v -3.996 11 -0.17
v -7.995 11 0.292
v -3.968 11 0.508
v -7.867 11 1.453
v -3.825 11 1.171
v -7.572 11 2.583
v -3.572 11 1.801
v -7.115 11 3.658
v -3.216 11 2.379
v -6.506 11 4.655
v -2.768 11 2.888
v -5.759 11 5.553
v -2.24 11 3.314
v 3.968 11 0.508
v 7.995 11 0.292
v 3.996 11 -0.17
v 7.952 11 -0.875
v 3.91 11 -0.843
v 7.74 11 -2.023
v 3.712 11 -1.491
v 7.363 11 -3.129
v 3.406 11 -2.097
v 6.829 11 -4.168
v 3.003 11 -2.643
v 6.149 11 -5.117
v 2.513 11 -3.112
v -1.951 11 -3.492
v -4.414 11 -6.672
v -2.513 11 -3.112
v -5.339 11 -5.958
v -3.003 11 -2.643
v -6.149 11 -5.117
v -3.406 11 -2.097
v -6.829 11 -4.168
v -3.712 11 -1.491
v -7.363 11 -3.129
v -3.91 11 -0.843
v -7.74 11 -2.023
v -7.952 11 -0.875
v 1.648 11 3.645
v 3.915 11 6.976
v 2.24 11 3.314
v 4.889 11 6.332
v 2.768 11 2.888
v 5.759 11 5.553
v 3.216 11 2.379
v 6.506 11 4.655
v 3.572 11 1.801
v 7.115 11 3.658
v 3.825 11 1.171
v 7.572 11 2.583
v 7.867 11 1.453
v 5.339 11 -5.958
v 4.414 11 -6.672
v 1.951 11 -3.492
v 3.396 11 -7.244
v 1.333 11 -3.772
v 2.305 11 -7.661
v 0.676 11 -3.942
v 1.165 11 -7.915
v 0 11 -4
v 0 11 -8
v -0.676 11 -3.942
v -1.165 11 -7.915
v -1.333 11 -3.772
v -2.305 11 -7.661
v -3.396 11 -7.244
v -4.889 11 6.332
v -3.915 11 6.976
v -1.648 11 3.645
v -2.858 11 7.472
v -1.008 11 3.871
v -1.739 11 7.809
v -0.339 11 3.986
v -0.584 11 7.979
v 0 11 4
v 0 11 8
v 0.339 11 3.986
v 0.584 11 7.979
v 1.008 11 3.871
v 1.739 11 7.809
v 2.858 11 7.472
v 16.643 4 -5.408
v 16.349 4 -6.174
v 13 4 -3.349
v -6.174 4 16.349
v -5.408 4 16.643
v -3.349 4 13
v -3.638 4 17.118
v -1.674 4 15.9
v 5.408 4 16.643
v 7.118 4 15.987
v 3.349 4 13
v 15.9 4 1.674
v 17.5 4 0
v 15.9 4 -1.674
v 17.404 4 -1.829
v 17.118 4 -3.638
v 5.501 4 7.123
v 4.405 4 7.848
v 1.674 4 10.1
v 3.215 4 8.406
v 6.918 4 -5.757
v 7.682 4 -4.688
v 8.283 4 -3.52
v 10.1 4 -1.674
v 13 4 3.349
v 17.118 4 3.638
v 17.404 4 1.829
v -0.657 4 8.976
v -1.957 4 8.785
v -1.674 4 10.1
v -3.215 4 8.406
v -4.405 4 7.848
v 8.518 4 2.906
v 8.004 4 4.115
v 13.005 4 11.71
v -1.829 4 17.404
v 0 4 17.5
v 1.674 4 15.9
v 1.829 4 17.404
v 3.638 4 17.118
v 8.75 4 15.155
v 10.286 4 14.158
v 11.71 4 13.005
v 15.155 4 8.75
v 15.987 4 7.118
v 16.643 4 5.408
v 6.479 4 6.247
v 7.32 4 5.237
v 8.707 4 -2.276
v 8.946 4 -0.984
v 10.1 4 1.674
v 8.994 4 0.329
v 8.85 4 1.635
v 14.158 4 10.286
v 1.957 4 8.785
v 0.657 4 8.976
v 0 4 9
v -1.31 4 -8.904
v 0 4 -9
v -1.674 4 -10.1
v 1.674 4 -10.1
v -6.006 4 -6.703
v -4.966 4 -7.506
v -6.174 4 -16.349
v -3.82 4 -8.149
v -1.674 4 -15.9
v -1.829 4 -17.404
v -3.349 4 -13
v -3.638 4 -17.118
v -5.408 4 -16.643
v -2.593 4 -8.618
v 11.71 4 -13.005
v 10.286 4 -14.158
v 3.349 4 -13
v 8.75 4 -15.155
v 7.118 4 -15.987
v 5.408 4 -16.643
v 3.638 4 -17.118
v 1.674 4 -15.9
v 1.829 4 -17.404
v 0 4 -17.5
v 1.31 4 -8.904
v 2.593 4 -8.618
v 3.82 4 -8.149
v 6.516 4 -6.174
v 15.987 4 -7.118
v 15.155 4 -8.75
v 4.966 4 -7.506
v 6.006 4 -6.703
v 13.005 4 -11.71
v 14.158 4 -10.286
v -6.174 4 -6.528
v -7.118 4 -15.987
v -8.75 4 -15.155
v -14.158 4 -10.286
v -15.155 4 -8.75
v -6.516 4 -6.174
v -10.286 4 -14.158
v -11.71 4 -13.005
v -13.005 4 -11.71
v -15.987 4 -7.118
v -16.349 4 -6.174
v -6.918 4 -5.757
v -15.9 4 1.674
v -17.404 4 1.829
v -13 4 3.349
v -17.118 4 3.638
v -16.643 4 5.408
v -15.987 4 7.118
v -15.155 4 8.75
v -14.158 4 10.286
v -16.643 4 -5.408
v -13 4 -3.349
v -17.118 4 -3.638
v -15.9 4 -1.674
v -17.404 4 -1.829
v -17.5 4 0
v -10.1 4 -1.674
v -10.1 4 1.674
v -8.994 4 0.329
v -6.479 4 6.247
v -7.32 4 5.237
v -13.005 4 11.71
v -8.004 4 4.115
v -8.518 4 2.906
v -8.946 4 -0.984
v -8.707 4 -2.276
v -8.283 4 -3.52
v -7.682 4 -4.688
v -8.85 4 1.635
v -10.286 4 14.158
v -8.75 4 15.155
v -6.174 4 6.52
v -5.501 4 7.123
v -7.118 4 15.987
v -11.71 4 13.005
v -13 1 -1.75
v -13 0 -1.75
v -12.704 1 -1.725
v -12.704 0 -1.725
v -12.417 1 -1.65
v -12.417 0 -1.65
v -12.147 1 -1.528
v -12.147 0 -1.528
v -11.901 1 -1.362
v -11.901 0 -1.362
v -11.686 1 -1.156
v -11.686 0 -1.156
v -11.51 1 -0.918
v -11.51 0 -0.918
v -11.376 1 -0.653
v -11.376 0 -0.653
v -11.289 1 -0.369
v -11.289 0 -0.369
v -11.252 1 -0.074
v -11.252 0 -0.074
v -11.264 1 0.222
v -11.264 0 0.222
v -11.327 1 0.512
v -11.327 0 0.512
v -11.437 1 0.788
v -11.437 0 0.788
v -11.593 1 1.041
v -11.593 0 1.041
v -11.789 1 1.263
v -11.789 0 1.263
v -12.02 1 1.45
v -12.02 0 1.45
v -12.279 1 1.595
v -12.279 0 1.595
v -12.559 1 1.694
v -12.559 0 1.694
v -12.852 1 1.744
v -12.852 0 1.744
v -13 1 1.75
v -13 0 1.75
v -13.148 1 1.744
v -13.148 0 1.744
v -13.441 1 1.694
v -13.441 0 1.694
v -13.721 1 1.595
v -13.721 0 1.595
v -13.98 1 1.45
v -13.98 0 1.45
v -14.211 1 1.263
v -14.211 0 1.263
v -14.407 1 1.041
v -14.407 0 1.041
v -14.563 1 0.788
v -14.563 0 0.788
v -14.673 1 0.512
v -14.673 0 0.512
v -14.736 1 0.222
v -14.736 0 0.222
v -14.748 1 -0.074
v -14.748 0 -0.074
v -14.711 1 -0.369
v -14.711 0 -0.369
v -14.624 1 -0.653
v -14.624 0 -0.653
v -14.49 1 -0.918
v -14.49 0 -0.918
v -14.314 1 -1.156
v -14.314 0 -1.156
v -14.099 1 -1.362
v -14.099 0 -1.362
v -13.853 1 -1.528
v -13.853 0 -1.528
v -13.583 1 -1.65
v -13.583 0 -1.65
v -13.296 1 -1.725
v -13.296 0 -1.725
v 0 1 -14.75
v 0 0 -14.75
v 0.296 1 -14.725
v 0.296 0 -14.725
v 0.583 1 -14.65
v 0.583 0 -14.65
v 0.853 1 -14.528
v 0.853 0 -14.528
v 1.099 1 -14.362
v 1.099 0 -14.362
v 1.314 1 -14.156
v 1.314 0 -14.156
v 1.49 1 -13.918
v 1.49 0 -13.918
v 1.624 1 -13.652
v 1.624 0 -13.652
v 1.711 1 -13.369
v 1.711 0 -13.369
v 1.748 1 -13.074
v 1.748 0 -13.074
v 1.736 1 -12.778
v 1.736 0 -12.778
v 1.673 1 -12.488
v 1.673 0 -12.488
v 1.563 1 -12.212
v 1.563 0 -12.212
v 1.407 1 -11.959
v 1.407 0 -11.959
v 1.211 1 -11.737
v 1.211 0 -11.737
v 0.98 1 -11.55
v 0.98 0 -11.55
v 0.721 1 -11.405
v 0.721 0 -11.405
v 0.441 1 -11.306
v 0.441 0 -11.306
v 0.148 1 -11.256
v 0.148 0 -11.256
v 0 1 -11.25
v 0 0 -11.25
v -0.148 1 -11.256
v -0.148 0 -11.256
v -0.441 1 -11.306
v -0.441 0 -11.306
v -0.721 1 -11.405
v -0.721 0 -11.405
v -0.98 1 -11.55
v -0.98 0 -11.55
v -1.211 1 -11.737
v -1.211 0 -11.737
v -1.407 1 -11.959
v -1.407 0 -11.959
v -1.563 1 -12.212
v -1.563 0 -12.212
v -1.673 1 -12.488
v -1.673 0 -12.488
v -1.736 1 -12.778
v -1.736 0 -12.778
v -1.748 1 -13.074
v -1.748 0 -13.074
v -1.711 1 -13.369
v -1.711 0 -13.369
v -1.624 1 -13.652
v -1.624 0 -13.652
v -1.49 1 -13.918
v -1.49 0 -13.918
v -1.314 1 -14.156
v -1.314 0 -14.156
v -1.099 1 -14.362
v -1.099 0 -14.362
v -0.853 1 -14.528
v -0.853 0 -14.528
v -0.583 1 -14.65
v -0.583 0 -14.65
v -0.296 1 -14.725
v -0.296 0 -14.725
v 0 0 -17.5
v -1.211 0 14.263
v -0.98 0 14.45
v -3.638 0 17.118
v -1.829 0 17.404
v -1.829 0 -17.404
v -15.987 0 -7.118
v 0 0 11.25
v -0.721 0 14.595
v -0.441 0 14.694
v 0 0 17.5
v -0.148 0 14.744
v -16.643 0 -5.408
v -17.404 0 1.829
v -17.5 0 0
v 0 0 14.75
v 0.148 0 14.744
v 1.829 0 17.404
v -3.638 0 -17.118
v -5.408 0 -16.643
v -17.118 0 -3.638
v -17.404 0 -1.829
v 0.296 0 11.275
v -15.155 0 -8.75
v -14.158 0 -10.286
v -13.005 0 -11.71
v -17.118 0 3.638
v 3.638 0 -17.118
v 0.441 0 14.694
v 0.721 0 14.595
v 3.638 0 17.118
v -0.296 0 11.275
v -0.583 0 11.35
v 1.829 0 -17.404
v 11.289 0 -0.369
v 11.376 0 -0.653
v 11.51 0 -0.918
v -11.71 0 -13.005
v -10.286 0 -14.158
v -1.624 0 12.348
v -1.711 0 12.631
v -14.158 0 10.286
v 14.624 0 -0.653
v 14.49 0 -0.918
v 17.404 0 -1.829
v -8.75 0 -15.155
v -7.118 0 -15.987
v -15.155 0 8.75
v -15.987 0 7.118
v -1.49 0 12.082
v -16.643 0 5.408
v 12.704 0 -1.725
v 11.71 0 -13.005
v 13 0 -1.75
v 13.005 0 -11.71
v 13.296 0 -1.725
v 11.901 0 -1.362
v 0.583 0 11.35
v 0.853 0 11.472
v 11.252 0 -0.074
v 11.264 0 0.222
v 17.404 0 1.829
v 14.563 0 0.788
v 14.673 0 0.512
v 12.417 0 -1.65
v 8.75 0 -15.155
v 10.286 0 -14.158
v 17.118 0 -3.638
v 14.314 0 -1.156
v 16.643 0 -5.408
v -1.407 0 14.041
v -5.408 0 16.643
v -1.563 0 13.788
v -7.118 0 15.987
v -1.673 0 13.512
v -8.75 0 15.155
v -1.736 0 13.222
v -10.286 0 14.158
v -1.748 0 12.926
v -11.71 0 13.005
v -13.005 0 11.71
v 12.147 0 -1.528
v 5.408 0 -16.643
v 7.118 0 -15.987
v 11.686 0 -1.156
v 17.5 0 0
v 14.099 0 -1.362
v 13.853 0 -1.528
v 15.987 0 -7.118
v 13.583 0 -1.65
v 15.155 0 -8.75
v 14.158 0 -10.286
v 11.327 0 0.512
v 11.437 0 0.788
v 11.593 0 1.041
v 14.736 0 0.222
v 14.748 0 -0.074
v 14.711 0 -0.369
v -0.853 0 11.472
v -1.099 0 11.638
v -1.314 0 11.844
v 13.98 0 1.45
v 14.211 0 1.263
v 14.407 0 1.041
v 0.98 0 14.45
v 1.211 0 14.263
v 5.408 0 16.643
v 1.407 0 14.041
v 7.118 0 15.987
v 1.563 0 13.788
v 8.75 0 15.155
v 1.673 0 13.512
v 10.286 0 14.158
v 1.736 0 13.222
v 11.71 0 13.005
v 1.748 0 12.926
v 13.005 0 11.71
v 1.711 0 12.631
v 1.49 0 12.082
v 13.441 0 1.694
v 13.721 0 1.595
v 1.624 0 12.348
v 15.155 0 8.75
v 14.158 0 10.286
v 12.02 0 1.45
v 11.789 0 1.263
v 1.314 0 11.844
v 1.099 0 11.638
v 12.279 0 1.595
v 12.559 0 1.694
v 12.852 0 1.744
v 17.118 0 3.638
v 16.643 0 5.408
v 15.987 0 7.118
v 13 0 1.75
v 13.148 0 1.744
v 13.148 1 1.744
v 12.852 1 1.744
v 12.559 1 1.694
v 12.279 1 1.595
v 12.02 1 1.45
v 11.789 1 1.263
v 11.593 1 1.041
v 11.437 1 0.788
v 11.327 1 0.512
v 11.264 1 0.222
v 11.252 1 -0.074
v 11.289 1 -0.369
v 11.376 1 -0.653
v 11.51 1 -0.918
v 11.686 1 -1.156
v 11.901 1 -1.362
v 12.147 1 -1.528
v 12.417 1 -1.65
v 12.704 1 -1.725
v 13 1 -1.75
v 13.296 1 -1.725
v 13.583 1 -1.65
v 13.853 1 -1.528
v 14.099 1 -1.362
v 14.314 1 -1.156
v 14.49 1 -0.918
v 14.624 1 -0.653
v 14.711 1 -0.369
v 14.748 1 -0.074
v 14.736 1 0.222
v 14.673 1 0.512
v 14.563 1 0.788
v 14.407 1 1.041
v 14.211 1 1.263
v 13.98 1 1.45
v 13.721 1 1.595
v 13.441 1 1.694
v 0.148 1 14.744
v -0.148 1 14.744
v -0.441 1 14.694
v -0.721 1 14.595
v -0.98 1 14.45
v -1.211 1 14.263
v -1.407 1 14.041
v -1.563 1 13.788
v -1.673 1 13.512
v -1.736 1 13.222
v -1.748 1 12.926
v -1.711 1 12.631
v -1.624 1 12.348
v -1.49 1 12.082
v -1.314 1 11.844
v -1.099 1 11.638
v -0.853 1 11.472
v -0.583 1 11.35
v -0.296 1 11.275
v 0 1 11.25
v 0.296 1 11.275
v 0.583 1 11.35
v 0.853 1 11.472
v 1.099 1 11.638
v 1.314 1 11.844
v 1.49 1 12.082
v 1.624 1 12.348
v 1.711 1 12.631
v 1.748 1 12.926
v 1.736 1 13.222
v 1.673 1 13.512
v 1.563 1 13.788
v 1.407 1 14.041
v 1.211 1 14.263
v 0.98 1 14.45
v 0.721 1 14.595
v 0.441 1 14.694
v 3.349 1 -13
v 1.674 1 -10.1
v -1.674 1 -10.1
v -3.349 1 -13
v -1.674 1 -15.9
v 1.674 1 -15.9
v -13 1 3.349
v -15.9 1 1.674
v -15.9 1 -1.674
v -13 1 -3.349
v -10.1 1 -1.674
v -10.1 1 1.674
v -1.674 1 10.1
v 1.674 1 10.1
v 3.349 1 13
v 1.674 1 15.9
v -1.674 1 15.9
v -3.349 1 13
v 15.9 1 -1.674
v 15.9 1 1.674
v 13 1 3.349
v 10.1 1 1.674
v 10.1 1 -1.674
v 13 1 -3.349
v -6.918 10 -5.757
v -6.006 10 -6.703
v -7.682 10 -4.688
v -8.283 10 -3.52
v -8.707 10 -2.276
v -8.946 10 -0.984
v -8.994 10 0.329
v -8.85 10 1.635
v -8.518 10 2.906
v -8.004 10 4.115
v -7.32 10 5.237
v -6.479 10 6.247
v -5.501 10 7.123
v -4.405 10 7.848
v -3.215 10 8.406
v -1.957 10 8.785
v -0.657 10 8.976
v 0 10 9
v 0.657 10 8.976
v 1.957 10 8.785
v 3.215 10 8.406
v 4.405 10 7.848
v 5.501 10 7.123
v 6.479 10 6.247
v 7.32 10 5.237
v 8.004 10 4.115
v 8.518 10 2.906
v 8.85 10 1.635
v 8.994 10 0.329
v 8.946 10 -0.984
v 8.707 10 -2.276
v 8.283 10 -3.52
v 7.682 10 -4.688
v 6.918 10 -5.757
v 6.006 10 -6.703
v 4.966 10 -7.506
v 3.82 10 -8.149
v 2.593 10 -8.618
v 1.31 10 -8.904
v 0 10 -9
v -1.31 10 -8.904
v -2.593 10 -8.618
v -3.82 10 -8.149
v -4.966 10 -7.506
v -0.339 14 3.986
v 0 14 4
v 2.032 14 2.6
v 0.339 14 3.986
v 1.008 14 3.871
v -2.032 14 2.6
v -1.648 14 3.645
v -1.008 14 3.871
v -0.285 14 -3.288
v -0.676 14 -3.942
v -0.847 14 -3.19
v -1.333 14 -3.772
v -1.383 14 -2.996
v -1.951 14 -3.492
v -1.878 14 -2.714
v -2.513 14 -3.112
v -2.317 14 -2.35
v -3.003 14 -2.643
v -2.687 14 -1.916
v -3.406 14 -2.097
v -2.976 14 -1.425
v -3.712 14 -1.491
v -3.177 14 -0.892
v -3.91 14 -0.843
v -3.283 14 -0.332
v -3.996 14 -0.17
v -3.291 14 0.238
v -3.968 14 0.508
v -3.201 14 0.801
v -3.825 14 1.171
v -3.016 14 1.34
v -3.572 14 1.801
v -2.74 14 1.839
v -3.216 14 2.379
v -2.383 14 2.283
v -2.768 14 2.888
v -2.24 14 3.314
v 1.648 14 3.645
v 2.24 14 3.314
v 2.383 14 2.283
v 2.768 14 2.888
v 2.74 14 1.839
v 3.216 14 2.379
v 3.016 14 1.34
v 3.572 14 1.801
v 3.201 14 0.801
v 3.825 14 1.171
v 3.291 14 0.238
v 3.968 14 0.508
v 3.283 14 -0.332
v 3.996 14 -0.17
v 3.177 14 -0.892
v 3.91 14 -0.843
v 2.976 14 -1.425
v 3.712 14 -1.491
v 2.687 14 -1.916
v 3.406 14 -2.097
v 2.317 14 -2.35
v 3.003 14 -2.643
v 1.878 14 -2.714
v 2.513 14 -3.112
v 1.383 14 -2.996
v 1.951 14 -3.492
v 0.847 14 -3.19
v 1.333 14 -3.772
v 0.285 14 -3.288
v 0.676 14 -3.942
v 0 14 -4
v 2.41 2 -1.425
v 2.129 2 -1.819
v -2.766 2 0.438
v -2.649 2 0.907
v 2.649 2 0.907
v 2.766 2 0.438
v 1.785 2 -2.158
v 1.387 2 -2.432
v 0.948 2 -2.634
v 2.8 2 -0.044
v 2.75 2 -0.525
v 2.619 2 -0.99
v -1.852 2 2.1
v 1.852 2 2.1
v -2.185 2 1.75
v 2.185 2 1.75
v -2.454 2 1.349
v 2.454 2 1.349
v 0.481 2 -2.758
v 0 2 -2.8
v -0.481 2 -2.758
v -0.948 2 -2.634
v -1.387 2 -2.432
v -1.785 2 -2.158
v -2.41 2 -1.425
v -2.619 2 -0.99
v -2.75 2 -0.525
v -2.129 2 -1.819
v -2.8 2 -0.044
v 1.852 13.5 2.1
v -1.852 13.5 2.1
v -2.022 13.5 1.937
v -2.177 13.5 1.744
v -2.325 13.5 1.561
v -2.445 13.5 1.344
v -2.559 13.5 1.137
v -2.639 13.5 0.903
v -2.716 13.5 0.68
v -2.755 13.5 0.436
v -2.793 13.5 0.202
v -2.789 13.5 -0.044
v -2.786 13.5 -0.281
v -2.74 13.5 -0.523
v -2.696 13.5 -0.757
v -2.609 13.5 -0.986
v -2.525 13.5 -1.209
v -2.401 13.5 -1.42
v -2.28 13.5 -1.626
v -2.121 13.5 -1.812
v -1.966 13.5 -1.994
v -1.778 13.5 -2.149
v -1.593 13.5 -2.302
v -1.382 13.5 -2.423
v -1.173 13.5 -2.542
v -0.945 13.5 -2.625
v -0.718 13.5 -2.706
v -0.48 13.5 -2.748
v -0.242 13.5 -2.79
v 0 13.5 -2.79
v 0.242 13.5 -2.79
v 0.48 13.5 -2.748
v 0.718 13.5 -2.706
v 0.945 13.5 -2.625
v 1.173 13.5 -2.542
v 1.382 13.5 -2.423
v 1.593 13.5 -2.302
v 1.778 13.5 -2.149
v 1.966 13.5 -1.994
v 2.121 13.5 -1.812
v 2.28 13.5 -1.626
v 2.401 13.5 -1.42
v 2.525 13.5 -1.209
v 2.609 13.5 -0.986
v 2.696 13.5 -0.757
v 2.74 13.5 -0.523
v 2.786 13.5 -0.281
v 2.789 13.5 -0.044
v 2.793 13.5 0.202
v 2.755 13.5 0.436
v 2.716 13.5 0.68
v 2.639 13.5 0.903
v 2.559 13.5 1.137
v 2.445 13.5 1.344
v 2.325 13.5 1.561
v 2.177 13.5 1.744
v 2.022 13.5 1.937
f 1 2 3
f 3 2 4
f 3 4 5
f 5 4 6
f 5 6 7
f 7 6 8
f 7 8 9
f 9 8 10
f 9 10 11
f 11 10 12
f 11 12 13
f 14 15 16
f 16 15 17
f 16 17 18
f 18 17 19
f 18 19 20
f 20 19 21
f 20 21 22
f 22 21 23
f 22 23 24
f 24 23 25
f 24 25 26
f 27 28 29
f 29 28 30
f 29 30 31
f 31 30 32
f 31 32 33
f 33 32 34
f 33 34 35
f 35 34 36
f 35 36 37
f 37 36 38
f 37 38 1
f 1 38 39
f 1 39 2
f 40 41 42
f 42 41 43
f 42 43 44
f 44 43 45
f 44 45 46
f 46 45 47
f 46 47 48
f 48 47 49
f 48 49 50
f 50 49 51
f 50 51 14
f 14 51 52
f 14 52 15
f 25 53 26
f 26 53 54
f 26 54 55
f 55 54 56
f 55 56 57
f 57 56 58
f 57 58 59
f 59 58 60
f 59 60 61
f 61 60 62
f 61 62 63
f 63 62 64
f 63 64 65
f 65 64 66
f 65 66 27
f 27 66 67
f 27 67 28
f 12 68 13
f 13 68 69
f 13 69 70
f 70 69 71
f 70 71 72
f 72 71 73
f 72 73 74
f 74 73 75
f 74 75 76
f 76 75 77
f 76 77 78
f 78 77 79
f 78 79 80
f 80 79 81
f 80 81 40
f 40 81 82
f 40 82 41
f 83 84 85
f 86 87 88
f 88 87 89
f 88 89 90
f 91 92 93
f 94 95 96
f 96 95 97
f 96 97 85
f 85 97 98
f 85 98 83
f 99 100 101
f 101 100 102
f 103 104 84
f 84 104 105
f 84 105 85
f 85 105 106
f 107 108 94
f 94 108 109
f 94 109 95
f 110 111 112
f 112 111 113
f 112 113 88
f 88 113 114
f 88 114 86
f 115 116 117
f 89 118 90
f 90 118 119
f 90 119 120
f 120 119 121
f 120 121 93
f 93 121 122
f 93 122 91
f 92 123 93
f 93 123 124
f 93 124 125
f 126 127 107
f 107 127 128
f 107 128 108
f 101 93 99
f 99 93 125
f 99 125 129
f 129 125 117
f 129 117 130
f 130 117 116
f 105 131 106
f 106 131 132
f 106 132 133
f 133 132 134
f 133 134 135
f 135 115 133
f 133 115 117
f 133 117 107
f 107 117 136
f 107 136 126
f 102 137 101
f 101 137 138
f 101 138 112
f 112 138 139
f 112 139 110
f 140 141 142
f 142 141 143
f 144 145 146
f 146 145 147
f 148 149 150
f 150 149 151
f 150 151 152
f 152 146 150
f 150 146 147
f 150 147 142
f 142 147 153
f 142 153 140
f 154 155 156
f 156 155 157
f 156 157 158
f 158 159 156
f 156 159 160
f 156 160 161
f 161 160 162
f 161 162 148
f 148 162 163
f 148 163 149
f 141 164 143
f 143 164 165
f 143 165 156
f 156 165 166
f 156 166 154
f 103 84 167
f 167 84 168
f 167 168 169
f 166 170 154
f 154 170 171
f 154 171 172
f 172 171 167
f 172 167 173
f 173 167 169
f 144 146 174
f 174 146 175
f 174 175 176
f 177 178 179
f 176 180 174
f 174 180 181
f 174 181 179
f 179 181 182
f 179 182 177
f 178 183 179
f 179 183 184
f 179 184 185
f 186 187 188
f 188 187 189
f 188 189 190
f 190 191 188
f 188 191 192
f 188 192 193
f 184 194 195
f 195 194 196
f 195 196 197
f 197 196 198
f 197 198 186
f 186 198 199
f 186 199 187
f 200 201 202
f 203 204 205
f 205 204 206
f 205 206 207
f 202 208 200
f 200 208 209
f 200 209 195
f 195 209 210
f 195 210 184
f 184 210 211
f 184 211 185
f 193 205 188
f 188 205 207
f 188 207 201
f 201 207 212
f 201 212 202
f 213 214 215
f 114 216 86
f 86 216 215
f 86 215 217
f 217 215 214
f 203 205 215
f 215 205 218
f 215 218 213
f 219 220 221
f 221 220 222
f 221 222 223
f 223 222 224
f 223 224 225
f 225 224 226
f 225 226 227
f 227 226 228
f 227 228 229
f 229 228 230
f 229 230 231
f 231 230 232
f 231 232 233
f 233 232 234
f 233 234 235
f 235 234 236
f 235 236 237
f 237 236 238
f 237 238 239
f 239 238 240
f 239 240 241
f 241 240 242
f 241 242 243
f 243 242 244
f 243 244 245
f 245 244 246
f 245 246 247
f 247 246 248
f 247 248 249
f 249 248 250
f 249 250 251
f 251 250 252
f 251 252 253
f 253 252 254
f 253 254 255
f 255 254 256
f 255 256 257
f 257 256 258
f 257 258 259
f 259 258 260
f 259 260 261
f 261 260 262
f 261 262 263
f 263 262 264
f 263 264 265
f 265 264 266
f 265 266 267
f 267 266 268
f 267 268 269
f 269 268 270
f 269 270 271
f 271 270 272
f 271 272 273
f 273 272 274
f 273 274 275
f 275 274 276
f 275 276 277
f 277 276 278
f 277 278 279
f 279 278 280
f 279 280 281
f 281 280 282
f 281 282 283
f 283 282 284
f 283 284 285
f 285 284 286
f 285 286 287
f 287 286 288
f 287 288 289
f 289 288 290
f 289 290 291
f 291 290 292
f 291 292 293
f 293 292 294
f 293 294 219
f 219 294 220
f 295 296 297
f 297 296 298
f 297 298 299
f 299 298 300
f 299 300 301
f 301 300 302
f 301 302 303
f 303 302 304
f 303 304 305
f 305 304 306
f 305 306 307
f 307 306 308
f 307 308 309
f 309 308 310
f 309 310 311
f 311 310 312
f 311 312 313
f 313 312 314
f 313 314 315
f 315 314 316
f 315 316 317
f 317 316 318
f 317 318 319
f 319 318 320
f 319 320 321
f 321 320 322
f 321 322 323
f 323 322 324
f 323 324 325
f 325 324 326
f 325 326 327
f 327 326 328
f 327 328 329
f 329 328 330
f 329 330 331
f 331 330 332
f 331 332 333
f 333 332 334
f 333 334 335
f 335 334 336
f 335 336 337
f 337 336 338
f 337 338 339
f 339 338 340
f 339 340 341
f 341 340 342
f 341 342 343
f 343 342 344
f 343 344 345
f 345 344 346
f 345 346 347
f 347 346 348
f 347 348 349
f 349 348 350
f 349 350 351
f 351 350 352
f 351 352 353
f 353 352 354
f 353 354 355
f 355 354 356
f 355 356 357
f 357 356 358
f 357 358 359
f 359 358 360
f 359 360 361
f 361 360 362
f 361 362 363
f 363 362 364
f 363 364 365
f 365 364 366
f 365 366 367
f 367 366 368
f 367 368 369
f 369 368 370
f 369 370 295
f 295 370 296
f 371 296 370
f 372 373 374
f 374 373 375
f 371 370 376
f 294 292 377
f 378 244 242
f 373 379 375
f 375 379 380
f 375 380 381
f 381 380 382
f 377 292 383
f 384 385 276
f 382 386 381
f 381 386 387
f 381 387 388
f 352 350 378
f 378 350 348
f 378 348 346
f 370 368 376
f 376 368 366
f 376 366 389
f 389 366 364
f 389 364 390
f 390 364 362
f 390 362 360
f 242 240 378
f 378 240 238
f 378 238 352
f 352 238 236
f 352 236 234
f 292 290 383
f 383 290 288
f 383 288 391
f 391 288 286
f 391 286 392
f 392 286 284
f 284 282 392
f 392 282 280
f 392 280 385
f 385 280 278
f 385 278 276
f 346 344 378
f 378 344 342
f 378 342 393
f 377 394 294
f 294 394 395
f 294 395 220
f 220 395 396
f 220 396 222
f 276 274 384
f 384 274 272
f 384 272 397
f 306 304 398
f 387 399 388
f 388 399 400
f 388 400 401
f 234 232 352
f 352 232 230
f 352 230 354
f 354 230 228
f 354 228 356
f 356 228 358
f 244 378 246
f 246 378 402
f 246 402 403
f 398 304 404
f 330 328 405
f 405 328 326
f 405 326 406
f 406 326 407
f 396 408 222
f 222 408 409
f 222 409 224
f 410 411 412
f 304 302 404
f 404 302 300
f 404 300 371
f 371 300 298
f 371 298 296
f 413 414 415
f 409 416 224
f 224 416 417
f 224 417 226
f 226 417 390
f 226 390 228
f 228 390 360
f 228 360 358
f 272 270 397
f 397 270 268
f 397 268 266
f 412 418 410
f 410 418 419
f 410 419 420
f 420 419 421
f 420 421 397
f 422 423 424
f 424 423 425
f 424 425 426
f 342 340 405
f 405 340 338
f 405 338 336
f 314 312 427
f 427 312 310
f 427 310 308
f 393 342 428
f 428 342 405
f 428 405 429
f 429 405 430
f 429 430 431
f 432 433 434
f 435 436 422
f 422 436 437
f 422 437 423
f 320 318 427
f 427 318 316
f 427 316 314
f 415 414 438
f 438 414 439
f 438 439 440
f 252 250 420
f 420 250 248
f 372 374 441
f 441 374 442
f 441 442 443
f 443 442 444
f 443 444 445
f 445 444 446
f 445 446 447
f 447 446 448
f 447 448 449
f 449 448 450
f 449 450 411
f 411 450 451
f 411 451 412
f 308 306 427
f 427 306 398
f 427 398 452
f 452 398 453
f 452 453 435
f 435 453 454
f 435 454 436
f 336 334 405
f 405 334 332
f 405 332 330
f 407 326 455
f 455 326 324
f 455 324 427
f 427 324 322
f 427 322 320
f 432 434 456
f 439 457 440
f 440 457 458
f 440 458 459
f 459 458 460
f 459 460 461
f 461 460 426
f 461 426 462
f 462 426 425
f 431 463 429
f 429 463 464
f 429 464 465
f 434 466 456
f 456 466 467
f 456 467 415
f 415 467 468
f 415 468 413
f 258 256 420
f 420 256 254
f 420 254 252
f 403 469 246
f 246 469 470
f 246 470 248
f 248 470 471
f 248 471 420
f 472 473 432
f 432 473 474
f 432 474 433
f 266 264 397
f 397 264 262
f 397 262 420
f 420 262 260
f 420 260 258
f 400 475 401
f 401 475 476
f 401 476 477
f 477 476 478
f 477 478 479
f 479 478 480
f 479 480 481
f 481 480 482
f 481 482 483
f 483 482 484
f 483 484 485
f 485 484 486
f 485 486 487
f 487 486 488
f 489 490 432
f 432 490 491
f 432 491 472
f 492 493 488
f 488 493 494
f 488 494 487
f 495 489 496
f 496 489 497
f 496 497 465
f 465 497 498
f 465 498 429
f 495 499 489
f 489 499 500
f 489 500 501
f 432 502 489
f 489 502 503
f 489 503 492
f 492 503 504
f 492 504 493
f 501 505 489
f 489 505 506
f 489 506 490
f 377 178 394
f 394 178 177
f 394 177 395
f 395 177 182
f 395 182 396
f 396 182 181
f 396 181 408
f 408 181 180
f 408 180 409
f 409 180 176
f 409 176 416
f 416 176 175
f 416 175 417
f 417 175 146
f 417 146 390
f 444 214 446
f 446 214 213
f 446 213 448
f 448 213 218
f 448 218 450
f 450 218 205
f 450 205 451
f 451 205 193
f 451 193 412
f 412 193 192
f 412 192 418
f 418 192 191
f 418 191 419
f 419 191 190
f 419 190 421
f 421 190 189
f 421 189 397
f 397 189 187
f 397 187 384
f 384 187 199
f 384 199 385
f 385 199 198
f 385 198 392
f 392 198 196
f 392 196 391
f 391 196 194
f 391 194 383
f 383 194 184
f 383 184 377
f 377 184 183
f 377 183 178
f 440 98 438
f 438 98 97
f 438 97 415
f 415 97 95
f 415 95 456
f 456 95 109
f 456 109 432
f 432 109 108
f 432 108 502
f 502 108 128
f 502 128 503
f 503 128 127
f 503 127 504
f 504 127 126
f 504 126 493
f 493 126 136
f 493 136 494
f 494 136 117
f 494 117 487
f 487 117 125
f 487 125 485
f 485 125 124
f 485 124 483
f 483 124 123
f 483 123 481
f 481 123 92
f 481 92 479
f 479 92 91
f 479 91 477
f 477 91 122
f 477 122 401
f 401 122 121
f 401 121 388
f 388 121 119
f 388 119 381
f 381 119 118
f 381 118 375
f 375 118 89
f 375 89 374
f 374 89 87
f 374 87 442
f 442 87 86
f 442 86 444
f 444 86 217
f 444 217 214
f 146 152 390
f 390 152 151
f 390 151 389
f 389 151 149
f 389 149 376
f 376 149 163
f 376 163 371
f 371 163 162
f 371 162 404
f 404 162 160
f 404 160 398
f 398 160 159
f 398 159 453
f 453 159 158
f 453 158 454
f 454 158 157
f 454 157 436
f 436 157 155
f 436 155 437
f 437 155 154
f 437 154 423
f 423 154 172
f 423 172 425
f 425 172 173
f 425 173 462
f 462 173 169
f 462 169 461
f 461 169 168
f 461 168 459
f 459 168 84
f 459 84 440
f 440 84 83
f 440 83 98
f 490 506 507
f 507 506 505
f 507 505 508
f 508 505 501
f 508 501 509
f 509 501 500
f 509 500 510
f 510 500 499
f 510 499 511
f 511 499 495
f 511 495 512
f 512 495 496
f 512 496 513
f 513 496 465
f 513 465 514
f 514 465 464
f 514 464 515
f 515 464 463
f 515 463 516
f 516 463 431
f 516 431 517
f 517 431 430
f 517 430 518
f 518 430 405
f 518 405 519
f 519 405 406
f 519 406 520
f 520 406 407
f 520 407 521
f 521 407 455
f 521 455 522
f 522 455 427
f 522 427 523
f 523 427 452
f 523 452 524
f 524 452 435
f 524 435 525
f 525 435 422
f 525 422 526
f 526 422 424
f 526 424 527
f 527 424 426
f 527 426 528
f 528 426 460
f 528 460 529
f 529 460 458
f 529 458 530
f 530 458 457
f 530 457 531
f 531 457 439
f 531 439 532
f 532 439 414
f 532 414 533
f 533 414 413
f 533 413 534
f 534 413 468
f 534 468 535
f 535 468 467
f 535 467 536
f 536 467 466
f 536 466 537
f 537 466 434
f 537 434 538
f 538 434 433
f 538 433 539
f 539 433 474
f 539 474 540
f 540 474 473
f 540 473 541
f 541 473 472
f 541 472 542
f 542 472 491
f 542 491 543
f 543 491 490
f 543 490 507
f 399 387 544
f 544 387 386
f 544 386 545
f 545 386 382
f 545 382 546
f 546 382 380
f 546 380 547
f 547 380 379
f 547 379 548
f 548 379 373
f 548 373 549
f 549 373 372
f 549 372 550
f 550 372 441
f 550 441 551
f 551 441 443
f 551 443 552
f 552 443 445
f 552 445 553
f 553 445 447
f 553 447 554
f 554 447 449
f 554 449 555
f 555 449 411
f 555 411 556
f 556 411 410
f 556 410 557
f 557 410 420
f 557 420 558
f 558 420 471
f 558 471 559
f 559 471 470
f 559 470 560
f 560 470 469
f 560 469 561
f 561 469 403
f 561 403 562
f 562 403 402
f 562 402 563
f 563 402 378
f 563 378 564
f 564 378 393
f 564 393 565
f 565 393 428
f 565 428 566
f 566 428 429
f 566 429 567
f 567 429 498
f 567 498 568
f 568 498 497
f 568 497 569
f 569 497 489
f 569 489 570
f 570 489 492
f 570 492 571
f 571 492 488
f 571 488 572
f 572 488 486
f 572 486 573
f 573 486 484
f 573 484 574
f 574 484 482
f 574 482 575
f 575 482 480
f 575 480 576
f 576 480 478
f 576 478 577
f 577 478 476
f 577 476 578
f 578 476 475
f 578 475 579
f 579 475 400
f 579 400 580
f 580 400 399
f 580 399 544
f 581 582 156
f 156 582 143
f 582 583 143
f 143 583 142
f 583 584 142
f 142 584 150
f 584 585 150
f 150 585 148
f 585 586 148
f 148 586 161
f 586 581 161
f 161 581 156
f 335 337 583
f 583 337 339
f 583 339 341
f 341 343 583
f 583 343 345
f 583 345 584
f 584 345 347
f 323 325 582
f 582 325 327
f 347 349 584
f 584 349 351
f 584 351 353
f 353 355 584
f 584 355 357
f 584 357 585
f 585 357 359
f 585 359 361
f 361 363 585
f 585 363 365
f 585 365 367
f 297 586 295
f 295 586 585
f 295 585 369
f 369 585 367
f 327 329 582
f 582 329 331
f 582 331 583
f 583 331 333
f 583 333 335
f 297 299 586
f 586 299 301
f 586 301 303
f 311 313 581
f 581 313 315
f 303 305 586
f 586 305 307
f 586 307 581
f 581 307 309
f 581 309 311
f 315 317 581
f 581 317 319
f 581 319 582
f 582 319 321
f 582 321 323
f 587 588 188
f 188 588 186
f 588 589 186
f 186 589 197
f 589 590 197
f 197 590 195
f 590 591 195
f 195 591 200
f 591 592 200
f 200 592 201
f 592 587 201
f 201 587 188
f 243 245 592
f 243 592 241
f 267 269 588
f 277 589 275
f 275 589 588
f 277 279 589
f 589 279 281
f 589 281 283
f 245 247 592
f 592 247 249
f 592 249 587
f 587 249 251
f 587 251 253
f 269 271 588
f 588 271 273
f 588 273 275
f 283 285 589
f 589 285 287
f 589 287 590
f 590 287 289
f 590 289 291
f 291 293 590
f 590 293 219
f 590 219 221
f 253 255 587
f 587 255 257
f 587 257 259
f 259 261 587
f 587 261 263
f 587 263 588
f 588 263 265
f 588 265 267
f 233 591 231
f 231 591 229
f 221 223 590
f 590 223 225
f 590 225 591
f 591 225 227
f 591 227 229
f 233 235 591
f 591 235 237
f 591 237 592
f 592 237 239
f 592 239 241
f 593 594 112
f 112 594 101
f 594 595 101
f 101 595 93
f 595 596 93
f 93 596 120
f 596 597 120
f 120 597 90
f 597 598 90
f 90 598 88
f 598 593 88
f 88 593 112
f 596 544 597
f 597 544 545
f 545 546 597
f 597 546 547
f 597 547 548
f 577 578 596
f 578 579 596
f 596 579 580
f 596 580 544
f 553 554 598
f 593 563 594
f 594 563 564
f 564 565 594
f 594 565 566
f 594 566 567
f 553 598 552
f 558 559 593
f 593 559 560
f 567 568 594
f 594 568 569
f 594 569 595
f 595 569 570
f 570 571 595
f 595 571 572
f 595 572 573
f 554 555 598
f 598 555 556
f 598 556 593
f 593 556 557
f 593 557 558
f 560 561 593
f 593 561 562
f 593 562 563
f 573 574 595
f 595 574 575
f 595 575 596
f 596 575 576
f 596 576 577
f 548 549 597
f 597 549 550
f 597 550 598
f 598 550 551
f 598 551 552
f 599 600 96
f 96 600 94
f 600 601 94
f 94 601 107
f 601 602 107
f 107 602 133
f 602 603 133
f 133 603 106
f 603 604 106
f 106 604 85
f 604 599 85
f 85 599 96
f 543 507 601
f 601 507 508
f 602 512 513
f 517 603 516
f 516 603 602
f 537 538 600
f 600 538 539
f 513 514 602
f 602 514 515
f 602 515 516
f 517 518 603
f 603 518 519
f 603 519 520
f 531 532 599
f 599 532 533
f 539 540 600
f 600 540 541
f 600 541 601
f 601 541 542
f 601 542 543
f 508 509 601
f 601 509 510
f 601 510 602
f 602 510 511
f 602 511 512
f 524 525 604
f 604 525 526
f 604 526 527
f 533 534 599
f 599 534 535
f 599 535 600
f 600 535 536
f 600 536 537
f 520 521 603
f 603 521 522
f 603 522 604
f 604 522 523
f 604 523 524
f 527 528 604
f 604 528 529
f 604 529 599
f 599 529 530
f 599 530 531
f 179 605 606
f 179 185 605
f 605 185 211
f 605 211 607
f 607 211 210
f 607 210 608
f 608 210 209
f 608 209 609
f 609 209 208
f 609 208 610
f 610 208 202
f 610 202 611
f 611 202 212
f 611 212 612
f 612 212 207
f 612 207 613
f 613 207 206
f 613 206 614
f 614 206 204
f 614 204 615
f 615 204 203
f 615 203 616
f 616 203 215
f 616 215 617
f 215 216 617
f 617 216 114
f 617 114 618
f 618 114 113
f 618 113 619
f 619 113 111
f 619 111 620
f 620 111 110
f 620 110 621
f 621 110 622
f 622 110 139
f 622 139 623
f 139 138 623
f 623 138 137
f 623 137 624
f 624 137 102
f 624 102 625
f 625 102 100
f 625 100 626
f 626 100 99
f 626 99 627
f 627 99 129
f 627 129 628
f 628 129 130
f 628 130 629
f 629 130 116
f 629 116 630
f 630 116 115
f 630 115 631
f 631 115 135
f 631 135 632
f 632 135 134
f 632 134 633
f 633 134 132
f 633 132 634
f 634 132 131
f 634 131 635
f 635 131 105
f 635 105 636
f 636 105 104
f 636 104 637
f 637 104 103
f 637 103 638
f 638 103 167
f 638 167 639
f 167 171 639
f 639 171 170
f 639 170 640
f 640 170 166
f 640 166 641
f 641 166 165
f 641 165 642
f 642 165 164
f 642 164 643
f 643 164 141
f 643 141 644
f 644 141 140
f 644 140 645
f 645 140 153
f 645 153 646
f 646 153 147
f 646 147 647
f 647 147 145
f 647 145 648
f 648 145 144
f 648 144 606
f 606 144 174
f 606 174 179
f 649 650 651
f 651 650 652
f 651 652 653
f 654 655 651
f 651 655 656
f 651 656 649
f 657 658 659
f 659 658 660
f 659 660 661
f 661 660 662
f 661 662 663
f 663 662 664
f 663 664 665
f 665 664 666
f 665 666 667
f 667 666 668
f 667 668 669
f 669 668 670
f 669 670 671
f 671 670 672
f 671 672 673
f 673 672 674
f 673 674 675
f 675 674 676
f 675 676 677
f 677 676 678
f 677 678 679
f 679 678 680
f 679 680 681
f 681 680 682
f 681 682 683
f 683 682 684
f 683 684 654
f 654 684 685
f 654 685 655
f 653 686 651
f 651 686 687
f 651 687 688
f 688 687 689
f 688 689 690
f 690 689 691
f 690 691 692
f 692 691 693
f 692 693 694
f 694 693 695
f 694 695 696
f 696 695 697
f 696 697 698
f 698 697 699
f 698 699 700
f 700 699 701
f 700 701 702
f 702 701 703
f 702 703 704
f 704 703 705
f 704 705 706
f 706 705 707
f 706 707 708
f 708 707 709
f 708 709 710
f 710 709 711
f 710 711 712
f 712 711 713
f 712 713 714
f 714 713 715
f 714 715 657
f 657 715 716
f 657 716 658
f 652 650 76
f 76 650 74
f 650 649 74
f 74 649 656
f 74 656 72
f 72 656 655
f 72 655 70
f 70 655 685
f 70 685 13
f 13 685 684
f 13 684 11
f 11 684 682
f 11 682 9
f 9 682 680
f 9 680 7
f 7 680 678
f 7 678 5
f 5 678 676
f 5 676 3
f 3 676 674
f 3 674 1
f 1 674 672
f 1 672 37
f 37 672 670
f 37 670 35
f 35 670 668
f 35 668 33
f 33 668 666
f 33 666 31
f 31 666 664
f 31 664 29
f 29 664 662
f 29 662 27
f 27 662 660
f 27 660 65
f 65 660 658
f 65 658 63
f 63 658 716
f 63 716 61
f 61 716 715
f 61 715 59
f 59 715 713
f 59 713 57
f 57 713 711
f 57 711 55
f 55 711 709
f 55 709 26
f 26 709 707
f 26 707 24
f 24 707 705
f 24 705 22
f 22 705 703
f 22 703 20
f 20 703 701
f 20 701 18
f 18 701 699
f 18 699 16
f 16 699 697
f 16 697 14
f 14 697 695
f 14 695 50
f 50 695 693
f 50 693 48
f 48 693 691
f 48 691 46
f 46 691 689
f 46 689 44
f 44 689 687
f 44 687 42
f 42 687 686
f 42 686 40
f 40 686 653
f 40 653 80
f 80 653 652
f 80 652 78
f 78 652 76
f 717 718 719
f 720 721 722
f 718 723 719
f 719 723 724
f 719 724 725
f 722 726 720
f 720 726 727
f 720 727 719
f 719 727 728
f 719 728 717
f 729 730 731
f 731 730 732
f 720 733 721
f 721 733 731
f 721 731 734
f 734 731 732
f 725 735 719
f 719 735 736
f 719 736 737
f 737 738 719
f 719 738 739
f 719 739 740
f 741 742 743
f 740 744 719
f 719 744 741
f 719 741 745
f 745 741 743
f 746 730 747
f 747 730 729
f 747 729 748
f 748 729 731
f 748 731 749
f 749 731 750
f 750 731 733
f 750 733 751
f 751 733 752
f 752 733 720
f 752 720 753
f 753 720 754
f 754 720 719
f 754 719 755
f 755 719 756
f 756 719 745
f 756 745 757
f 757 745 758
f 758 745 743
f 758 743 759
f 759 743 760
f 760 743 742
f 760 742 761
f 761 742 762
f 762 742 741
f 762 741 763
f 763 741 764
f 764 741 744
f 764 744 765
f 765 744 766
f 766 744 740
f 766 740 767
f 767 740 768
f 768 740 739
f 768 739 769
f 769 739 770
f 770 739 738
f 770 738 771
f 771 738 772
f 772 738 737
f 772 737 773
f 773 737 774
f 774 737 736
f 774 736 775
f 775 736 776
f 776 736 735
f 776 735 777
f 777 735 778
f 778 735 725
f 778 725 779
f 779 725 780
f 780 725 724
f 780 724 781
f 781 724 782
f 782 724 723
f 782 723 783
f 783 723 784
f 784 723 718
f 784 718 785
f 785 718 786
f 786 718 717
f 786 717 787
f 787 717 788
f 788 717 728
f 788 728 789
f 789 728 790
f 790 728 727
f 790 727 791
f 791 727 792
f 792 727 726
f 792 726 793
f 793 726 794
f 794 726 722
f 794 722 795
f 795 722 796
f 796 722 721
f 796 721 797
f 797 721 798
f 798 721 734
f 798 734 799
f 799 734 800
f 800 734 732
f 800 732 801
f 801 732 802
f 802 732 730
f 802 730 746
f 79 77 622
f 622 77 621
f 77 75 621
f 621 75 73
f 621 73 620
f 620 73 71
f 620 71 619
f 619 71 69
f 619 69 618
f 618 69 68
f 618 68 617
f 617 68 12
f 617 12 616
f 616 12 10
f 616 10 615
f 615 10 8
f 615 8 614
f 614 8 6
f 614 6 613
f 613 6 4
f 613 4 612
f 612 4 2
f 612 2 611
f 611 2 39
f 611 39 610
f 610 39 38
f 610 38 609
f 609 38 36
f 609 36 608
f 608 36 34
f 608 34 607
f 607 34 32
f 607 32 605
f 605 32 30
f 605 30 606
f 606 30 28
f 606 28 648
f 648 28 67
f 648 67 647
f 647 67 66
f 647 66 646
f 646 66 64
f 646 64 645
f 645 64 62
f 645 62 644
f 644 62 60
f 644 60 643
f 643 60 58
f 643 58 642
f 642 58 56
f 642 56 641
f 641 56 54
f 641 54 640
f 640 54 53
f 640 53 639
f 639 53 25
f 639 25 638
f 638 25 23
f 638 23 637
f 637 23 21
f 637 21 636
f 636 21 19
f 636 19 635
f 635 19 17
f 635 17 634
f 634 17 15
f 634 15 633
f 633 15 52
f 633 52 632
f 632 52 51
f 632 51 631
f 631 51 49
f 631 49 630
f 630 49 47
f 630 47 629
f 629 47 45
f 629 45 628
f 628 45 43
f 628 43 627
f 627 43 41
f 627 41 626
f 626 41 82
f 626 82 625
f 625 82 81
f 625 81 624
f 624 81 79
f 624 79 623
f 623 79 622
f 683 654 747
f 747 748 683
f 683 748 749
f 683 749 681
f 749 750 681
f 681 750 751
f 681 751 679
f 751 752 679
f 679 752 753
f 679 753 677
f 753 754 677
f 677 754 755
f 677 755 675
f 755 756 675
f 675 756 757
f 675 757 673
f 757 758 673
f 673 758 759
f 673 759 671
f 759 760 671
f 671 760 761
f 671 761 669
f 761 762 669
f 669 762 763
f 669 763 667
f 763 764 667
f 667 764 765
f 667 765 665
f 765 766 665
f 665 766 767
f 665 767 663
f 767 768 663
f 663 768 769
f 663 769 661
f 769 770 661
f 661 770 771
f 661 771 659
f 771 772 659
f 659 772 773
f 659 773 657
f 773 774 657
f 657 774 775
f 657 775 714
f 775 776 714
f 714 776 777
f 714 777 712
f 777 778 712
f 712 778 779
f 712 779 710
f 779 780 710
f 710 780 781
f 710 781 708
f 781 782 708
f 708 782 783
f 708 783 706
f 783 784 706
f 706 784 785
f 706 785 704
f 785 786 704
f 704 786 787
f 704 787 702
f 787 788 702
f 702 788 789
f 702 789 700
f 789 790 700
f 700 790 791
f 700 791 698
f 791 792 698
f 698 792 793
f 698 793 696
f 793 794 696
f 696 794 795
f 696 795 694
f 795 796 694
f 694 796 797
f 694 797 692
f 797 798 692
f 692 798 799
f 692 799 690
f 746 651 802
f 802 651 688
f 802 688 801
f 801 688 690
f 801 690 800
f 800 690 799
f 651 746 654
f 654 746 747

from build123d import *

# Parameters (mm, degrees)
SKETCH_1_R          = 17.5
SKETCH_1_R_2        = 1.75
EXTRUDE_1_DEPTH     = 4
CUT_EXTRUDE_1_DEPTH = 3
SKETCH_3_R          = 9
EXTRUDE_2_DEPTH     = 7
CUT_EXTRUDE_2_DEPTH = 2
SKETCH_6_R          = 4
EXTRUDE_3_DEPTH     = 3
CHAMFER_1_SIZE      = 1
CHAMFER_2_SIZE      = 0.5


with BuildPart() as part:
    # Эскиз1 → Бобышка-Вытянуть1 (new body)
    with BuildSketch(Plane(origin=(0, 0, 0), x_dir=(1, 0, 0), z_dir=(0, 1, 0))):
        Circle(SKETCH_1_R)
        with Locations((13, 0)):
            Circle(SKETCH_1_R_2, mode=Mode.SUBTRACT)
        with Locations((0, -13)):
            Circle(SKETCH_1_R_2, mode=Mode.SUBTRACT)
        with Locations((-13, 0)):
            Circle(SKETCH_1_R_2, mode=Mode.SUBTRACT)
        with Locations((0, 13)):
            Circle(SKETCH_1_R_2, mode=Mode.SUBTRACT)
    extrude(amount=EXTRUDE_1_DEPTH)

    # Эскиз2 → Вырез-Вытянуть1 (cut)
    with BuildSketch(Plane(origin=(0, 4, 0), x_dir=(1, 0, 0), z_dir=(0, 1, 0))):
        Polygon((3.348631561, 13), (1.674315781, 15.9), (-1.674315781, 15.9), (-3.348631561, 13), (-1.674315781, 10.1), (1.674315781, 10.1), align=None)
        Polygon((-13, -3.348631561), (-10.1, -1.674315781), (-10.1, 1.674315781), (-13, 3.348631561), (-15.9, 1.674315781), (-15.9, -1.674315781), align=None)
        Polygon((15.9, -1.674315781), (13, -3.348631561), (10.1, -1.674315781), (10.1, 1.674315781), (13, 3.348631561), (15.9, 1.674315781), align=None)
        Polygon((1.674315781, -10.1), (3.348631561, -13), (1.674315781, -15.9), (-1.674315781, -15.9), (-3.348631561, -13), (-1.674315781, -10.1), align=None)
    extrude(amount=-CUT_EXTRUDE_1_DEPTH, mode=Mode.SUBTRACT)

    # Эскиз3 → Бобышка-Вытянуть2 (add)
    with BuildSketch(Plane(origin=(0, 4, 0), x_dir=(1, 0, 0), z_dir=(0, 1, 0))):
        Circle(SKETCH_3_R)
        with BuildLine():
            Line((-1.852025918, -2.1), (1.852025918, -2.1))
            ThreePointArc((1.852025918, -2.1), (0, 2.8), (-1.852025918, -2.1))
        make_face(mode=Mode.SUBTRACT)
    extrude(amount=EXTRUDE_2_DEPTH)

    # Эскиз4 → Вырез-Вытянуть2 (cut)
    with BuildSketch(Plane(origin=(0, 4, 0), x_dir=(1, 0, 0), z_dir=(0, 1, 0))):
        with BuildLine():
            Line((-1.852025918, -2.1), (1.852025918, -2.1))
            ThreePointArc((1.852025918, -2.1), (0, 2.8), (-1.852025918, -2.1))
        make_face()
    extrude(amount=-CUT_EXTRUDE_2_DEPTH, mode=Mode.SUBTRACT)

    # Эскиз6 → Бобышка-Вытянуть3 (add)
    with BuildSketch(Plane(origin=(0, 11, 0), x_dir=(1, 0, 0), z_dir=(0, 1, 0))):
        Circle(SKETCH_6_R)
        with BuildLine():
            Line((-1.852025918, -2.1), (1.852025918, -2.1))
            ThreePointArc((1.852025918, -2.1), (0, 2.8), (-1.852025918, -2.1))
        make_face(mode=Mode.SUBTRACT)
    extrude(amount=EXTRUDE_3_DEPTH)

    # Фаска1
    chamfer_1_edges = [part.edges().sort_by_distance(p)[0] for p in [
        (-9, 11, 0),
    ]]
    chamfer(chamfer_1_edges, length=CHAMFER_1_SIZE)

    # Фаска2
    chamfer_2_edges = [part.edges().sort_by_distance(p)[0] for p in [
        (0, 14, -2.8),
        (0, 14, 2.1),
    ]]
    chamfer(chamfer_2_edges, length=CHAMFER_2_SIZE)


solid = part.part
